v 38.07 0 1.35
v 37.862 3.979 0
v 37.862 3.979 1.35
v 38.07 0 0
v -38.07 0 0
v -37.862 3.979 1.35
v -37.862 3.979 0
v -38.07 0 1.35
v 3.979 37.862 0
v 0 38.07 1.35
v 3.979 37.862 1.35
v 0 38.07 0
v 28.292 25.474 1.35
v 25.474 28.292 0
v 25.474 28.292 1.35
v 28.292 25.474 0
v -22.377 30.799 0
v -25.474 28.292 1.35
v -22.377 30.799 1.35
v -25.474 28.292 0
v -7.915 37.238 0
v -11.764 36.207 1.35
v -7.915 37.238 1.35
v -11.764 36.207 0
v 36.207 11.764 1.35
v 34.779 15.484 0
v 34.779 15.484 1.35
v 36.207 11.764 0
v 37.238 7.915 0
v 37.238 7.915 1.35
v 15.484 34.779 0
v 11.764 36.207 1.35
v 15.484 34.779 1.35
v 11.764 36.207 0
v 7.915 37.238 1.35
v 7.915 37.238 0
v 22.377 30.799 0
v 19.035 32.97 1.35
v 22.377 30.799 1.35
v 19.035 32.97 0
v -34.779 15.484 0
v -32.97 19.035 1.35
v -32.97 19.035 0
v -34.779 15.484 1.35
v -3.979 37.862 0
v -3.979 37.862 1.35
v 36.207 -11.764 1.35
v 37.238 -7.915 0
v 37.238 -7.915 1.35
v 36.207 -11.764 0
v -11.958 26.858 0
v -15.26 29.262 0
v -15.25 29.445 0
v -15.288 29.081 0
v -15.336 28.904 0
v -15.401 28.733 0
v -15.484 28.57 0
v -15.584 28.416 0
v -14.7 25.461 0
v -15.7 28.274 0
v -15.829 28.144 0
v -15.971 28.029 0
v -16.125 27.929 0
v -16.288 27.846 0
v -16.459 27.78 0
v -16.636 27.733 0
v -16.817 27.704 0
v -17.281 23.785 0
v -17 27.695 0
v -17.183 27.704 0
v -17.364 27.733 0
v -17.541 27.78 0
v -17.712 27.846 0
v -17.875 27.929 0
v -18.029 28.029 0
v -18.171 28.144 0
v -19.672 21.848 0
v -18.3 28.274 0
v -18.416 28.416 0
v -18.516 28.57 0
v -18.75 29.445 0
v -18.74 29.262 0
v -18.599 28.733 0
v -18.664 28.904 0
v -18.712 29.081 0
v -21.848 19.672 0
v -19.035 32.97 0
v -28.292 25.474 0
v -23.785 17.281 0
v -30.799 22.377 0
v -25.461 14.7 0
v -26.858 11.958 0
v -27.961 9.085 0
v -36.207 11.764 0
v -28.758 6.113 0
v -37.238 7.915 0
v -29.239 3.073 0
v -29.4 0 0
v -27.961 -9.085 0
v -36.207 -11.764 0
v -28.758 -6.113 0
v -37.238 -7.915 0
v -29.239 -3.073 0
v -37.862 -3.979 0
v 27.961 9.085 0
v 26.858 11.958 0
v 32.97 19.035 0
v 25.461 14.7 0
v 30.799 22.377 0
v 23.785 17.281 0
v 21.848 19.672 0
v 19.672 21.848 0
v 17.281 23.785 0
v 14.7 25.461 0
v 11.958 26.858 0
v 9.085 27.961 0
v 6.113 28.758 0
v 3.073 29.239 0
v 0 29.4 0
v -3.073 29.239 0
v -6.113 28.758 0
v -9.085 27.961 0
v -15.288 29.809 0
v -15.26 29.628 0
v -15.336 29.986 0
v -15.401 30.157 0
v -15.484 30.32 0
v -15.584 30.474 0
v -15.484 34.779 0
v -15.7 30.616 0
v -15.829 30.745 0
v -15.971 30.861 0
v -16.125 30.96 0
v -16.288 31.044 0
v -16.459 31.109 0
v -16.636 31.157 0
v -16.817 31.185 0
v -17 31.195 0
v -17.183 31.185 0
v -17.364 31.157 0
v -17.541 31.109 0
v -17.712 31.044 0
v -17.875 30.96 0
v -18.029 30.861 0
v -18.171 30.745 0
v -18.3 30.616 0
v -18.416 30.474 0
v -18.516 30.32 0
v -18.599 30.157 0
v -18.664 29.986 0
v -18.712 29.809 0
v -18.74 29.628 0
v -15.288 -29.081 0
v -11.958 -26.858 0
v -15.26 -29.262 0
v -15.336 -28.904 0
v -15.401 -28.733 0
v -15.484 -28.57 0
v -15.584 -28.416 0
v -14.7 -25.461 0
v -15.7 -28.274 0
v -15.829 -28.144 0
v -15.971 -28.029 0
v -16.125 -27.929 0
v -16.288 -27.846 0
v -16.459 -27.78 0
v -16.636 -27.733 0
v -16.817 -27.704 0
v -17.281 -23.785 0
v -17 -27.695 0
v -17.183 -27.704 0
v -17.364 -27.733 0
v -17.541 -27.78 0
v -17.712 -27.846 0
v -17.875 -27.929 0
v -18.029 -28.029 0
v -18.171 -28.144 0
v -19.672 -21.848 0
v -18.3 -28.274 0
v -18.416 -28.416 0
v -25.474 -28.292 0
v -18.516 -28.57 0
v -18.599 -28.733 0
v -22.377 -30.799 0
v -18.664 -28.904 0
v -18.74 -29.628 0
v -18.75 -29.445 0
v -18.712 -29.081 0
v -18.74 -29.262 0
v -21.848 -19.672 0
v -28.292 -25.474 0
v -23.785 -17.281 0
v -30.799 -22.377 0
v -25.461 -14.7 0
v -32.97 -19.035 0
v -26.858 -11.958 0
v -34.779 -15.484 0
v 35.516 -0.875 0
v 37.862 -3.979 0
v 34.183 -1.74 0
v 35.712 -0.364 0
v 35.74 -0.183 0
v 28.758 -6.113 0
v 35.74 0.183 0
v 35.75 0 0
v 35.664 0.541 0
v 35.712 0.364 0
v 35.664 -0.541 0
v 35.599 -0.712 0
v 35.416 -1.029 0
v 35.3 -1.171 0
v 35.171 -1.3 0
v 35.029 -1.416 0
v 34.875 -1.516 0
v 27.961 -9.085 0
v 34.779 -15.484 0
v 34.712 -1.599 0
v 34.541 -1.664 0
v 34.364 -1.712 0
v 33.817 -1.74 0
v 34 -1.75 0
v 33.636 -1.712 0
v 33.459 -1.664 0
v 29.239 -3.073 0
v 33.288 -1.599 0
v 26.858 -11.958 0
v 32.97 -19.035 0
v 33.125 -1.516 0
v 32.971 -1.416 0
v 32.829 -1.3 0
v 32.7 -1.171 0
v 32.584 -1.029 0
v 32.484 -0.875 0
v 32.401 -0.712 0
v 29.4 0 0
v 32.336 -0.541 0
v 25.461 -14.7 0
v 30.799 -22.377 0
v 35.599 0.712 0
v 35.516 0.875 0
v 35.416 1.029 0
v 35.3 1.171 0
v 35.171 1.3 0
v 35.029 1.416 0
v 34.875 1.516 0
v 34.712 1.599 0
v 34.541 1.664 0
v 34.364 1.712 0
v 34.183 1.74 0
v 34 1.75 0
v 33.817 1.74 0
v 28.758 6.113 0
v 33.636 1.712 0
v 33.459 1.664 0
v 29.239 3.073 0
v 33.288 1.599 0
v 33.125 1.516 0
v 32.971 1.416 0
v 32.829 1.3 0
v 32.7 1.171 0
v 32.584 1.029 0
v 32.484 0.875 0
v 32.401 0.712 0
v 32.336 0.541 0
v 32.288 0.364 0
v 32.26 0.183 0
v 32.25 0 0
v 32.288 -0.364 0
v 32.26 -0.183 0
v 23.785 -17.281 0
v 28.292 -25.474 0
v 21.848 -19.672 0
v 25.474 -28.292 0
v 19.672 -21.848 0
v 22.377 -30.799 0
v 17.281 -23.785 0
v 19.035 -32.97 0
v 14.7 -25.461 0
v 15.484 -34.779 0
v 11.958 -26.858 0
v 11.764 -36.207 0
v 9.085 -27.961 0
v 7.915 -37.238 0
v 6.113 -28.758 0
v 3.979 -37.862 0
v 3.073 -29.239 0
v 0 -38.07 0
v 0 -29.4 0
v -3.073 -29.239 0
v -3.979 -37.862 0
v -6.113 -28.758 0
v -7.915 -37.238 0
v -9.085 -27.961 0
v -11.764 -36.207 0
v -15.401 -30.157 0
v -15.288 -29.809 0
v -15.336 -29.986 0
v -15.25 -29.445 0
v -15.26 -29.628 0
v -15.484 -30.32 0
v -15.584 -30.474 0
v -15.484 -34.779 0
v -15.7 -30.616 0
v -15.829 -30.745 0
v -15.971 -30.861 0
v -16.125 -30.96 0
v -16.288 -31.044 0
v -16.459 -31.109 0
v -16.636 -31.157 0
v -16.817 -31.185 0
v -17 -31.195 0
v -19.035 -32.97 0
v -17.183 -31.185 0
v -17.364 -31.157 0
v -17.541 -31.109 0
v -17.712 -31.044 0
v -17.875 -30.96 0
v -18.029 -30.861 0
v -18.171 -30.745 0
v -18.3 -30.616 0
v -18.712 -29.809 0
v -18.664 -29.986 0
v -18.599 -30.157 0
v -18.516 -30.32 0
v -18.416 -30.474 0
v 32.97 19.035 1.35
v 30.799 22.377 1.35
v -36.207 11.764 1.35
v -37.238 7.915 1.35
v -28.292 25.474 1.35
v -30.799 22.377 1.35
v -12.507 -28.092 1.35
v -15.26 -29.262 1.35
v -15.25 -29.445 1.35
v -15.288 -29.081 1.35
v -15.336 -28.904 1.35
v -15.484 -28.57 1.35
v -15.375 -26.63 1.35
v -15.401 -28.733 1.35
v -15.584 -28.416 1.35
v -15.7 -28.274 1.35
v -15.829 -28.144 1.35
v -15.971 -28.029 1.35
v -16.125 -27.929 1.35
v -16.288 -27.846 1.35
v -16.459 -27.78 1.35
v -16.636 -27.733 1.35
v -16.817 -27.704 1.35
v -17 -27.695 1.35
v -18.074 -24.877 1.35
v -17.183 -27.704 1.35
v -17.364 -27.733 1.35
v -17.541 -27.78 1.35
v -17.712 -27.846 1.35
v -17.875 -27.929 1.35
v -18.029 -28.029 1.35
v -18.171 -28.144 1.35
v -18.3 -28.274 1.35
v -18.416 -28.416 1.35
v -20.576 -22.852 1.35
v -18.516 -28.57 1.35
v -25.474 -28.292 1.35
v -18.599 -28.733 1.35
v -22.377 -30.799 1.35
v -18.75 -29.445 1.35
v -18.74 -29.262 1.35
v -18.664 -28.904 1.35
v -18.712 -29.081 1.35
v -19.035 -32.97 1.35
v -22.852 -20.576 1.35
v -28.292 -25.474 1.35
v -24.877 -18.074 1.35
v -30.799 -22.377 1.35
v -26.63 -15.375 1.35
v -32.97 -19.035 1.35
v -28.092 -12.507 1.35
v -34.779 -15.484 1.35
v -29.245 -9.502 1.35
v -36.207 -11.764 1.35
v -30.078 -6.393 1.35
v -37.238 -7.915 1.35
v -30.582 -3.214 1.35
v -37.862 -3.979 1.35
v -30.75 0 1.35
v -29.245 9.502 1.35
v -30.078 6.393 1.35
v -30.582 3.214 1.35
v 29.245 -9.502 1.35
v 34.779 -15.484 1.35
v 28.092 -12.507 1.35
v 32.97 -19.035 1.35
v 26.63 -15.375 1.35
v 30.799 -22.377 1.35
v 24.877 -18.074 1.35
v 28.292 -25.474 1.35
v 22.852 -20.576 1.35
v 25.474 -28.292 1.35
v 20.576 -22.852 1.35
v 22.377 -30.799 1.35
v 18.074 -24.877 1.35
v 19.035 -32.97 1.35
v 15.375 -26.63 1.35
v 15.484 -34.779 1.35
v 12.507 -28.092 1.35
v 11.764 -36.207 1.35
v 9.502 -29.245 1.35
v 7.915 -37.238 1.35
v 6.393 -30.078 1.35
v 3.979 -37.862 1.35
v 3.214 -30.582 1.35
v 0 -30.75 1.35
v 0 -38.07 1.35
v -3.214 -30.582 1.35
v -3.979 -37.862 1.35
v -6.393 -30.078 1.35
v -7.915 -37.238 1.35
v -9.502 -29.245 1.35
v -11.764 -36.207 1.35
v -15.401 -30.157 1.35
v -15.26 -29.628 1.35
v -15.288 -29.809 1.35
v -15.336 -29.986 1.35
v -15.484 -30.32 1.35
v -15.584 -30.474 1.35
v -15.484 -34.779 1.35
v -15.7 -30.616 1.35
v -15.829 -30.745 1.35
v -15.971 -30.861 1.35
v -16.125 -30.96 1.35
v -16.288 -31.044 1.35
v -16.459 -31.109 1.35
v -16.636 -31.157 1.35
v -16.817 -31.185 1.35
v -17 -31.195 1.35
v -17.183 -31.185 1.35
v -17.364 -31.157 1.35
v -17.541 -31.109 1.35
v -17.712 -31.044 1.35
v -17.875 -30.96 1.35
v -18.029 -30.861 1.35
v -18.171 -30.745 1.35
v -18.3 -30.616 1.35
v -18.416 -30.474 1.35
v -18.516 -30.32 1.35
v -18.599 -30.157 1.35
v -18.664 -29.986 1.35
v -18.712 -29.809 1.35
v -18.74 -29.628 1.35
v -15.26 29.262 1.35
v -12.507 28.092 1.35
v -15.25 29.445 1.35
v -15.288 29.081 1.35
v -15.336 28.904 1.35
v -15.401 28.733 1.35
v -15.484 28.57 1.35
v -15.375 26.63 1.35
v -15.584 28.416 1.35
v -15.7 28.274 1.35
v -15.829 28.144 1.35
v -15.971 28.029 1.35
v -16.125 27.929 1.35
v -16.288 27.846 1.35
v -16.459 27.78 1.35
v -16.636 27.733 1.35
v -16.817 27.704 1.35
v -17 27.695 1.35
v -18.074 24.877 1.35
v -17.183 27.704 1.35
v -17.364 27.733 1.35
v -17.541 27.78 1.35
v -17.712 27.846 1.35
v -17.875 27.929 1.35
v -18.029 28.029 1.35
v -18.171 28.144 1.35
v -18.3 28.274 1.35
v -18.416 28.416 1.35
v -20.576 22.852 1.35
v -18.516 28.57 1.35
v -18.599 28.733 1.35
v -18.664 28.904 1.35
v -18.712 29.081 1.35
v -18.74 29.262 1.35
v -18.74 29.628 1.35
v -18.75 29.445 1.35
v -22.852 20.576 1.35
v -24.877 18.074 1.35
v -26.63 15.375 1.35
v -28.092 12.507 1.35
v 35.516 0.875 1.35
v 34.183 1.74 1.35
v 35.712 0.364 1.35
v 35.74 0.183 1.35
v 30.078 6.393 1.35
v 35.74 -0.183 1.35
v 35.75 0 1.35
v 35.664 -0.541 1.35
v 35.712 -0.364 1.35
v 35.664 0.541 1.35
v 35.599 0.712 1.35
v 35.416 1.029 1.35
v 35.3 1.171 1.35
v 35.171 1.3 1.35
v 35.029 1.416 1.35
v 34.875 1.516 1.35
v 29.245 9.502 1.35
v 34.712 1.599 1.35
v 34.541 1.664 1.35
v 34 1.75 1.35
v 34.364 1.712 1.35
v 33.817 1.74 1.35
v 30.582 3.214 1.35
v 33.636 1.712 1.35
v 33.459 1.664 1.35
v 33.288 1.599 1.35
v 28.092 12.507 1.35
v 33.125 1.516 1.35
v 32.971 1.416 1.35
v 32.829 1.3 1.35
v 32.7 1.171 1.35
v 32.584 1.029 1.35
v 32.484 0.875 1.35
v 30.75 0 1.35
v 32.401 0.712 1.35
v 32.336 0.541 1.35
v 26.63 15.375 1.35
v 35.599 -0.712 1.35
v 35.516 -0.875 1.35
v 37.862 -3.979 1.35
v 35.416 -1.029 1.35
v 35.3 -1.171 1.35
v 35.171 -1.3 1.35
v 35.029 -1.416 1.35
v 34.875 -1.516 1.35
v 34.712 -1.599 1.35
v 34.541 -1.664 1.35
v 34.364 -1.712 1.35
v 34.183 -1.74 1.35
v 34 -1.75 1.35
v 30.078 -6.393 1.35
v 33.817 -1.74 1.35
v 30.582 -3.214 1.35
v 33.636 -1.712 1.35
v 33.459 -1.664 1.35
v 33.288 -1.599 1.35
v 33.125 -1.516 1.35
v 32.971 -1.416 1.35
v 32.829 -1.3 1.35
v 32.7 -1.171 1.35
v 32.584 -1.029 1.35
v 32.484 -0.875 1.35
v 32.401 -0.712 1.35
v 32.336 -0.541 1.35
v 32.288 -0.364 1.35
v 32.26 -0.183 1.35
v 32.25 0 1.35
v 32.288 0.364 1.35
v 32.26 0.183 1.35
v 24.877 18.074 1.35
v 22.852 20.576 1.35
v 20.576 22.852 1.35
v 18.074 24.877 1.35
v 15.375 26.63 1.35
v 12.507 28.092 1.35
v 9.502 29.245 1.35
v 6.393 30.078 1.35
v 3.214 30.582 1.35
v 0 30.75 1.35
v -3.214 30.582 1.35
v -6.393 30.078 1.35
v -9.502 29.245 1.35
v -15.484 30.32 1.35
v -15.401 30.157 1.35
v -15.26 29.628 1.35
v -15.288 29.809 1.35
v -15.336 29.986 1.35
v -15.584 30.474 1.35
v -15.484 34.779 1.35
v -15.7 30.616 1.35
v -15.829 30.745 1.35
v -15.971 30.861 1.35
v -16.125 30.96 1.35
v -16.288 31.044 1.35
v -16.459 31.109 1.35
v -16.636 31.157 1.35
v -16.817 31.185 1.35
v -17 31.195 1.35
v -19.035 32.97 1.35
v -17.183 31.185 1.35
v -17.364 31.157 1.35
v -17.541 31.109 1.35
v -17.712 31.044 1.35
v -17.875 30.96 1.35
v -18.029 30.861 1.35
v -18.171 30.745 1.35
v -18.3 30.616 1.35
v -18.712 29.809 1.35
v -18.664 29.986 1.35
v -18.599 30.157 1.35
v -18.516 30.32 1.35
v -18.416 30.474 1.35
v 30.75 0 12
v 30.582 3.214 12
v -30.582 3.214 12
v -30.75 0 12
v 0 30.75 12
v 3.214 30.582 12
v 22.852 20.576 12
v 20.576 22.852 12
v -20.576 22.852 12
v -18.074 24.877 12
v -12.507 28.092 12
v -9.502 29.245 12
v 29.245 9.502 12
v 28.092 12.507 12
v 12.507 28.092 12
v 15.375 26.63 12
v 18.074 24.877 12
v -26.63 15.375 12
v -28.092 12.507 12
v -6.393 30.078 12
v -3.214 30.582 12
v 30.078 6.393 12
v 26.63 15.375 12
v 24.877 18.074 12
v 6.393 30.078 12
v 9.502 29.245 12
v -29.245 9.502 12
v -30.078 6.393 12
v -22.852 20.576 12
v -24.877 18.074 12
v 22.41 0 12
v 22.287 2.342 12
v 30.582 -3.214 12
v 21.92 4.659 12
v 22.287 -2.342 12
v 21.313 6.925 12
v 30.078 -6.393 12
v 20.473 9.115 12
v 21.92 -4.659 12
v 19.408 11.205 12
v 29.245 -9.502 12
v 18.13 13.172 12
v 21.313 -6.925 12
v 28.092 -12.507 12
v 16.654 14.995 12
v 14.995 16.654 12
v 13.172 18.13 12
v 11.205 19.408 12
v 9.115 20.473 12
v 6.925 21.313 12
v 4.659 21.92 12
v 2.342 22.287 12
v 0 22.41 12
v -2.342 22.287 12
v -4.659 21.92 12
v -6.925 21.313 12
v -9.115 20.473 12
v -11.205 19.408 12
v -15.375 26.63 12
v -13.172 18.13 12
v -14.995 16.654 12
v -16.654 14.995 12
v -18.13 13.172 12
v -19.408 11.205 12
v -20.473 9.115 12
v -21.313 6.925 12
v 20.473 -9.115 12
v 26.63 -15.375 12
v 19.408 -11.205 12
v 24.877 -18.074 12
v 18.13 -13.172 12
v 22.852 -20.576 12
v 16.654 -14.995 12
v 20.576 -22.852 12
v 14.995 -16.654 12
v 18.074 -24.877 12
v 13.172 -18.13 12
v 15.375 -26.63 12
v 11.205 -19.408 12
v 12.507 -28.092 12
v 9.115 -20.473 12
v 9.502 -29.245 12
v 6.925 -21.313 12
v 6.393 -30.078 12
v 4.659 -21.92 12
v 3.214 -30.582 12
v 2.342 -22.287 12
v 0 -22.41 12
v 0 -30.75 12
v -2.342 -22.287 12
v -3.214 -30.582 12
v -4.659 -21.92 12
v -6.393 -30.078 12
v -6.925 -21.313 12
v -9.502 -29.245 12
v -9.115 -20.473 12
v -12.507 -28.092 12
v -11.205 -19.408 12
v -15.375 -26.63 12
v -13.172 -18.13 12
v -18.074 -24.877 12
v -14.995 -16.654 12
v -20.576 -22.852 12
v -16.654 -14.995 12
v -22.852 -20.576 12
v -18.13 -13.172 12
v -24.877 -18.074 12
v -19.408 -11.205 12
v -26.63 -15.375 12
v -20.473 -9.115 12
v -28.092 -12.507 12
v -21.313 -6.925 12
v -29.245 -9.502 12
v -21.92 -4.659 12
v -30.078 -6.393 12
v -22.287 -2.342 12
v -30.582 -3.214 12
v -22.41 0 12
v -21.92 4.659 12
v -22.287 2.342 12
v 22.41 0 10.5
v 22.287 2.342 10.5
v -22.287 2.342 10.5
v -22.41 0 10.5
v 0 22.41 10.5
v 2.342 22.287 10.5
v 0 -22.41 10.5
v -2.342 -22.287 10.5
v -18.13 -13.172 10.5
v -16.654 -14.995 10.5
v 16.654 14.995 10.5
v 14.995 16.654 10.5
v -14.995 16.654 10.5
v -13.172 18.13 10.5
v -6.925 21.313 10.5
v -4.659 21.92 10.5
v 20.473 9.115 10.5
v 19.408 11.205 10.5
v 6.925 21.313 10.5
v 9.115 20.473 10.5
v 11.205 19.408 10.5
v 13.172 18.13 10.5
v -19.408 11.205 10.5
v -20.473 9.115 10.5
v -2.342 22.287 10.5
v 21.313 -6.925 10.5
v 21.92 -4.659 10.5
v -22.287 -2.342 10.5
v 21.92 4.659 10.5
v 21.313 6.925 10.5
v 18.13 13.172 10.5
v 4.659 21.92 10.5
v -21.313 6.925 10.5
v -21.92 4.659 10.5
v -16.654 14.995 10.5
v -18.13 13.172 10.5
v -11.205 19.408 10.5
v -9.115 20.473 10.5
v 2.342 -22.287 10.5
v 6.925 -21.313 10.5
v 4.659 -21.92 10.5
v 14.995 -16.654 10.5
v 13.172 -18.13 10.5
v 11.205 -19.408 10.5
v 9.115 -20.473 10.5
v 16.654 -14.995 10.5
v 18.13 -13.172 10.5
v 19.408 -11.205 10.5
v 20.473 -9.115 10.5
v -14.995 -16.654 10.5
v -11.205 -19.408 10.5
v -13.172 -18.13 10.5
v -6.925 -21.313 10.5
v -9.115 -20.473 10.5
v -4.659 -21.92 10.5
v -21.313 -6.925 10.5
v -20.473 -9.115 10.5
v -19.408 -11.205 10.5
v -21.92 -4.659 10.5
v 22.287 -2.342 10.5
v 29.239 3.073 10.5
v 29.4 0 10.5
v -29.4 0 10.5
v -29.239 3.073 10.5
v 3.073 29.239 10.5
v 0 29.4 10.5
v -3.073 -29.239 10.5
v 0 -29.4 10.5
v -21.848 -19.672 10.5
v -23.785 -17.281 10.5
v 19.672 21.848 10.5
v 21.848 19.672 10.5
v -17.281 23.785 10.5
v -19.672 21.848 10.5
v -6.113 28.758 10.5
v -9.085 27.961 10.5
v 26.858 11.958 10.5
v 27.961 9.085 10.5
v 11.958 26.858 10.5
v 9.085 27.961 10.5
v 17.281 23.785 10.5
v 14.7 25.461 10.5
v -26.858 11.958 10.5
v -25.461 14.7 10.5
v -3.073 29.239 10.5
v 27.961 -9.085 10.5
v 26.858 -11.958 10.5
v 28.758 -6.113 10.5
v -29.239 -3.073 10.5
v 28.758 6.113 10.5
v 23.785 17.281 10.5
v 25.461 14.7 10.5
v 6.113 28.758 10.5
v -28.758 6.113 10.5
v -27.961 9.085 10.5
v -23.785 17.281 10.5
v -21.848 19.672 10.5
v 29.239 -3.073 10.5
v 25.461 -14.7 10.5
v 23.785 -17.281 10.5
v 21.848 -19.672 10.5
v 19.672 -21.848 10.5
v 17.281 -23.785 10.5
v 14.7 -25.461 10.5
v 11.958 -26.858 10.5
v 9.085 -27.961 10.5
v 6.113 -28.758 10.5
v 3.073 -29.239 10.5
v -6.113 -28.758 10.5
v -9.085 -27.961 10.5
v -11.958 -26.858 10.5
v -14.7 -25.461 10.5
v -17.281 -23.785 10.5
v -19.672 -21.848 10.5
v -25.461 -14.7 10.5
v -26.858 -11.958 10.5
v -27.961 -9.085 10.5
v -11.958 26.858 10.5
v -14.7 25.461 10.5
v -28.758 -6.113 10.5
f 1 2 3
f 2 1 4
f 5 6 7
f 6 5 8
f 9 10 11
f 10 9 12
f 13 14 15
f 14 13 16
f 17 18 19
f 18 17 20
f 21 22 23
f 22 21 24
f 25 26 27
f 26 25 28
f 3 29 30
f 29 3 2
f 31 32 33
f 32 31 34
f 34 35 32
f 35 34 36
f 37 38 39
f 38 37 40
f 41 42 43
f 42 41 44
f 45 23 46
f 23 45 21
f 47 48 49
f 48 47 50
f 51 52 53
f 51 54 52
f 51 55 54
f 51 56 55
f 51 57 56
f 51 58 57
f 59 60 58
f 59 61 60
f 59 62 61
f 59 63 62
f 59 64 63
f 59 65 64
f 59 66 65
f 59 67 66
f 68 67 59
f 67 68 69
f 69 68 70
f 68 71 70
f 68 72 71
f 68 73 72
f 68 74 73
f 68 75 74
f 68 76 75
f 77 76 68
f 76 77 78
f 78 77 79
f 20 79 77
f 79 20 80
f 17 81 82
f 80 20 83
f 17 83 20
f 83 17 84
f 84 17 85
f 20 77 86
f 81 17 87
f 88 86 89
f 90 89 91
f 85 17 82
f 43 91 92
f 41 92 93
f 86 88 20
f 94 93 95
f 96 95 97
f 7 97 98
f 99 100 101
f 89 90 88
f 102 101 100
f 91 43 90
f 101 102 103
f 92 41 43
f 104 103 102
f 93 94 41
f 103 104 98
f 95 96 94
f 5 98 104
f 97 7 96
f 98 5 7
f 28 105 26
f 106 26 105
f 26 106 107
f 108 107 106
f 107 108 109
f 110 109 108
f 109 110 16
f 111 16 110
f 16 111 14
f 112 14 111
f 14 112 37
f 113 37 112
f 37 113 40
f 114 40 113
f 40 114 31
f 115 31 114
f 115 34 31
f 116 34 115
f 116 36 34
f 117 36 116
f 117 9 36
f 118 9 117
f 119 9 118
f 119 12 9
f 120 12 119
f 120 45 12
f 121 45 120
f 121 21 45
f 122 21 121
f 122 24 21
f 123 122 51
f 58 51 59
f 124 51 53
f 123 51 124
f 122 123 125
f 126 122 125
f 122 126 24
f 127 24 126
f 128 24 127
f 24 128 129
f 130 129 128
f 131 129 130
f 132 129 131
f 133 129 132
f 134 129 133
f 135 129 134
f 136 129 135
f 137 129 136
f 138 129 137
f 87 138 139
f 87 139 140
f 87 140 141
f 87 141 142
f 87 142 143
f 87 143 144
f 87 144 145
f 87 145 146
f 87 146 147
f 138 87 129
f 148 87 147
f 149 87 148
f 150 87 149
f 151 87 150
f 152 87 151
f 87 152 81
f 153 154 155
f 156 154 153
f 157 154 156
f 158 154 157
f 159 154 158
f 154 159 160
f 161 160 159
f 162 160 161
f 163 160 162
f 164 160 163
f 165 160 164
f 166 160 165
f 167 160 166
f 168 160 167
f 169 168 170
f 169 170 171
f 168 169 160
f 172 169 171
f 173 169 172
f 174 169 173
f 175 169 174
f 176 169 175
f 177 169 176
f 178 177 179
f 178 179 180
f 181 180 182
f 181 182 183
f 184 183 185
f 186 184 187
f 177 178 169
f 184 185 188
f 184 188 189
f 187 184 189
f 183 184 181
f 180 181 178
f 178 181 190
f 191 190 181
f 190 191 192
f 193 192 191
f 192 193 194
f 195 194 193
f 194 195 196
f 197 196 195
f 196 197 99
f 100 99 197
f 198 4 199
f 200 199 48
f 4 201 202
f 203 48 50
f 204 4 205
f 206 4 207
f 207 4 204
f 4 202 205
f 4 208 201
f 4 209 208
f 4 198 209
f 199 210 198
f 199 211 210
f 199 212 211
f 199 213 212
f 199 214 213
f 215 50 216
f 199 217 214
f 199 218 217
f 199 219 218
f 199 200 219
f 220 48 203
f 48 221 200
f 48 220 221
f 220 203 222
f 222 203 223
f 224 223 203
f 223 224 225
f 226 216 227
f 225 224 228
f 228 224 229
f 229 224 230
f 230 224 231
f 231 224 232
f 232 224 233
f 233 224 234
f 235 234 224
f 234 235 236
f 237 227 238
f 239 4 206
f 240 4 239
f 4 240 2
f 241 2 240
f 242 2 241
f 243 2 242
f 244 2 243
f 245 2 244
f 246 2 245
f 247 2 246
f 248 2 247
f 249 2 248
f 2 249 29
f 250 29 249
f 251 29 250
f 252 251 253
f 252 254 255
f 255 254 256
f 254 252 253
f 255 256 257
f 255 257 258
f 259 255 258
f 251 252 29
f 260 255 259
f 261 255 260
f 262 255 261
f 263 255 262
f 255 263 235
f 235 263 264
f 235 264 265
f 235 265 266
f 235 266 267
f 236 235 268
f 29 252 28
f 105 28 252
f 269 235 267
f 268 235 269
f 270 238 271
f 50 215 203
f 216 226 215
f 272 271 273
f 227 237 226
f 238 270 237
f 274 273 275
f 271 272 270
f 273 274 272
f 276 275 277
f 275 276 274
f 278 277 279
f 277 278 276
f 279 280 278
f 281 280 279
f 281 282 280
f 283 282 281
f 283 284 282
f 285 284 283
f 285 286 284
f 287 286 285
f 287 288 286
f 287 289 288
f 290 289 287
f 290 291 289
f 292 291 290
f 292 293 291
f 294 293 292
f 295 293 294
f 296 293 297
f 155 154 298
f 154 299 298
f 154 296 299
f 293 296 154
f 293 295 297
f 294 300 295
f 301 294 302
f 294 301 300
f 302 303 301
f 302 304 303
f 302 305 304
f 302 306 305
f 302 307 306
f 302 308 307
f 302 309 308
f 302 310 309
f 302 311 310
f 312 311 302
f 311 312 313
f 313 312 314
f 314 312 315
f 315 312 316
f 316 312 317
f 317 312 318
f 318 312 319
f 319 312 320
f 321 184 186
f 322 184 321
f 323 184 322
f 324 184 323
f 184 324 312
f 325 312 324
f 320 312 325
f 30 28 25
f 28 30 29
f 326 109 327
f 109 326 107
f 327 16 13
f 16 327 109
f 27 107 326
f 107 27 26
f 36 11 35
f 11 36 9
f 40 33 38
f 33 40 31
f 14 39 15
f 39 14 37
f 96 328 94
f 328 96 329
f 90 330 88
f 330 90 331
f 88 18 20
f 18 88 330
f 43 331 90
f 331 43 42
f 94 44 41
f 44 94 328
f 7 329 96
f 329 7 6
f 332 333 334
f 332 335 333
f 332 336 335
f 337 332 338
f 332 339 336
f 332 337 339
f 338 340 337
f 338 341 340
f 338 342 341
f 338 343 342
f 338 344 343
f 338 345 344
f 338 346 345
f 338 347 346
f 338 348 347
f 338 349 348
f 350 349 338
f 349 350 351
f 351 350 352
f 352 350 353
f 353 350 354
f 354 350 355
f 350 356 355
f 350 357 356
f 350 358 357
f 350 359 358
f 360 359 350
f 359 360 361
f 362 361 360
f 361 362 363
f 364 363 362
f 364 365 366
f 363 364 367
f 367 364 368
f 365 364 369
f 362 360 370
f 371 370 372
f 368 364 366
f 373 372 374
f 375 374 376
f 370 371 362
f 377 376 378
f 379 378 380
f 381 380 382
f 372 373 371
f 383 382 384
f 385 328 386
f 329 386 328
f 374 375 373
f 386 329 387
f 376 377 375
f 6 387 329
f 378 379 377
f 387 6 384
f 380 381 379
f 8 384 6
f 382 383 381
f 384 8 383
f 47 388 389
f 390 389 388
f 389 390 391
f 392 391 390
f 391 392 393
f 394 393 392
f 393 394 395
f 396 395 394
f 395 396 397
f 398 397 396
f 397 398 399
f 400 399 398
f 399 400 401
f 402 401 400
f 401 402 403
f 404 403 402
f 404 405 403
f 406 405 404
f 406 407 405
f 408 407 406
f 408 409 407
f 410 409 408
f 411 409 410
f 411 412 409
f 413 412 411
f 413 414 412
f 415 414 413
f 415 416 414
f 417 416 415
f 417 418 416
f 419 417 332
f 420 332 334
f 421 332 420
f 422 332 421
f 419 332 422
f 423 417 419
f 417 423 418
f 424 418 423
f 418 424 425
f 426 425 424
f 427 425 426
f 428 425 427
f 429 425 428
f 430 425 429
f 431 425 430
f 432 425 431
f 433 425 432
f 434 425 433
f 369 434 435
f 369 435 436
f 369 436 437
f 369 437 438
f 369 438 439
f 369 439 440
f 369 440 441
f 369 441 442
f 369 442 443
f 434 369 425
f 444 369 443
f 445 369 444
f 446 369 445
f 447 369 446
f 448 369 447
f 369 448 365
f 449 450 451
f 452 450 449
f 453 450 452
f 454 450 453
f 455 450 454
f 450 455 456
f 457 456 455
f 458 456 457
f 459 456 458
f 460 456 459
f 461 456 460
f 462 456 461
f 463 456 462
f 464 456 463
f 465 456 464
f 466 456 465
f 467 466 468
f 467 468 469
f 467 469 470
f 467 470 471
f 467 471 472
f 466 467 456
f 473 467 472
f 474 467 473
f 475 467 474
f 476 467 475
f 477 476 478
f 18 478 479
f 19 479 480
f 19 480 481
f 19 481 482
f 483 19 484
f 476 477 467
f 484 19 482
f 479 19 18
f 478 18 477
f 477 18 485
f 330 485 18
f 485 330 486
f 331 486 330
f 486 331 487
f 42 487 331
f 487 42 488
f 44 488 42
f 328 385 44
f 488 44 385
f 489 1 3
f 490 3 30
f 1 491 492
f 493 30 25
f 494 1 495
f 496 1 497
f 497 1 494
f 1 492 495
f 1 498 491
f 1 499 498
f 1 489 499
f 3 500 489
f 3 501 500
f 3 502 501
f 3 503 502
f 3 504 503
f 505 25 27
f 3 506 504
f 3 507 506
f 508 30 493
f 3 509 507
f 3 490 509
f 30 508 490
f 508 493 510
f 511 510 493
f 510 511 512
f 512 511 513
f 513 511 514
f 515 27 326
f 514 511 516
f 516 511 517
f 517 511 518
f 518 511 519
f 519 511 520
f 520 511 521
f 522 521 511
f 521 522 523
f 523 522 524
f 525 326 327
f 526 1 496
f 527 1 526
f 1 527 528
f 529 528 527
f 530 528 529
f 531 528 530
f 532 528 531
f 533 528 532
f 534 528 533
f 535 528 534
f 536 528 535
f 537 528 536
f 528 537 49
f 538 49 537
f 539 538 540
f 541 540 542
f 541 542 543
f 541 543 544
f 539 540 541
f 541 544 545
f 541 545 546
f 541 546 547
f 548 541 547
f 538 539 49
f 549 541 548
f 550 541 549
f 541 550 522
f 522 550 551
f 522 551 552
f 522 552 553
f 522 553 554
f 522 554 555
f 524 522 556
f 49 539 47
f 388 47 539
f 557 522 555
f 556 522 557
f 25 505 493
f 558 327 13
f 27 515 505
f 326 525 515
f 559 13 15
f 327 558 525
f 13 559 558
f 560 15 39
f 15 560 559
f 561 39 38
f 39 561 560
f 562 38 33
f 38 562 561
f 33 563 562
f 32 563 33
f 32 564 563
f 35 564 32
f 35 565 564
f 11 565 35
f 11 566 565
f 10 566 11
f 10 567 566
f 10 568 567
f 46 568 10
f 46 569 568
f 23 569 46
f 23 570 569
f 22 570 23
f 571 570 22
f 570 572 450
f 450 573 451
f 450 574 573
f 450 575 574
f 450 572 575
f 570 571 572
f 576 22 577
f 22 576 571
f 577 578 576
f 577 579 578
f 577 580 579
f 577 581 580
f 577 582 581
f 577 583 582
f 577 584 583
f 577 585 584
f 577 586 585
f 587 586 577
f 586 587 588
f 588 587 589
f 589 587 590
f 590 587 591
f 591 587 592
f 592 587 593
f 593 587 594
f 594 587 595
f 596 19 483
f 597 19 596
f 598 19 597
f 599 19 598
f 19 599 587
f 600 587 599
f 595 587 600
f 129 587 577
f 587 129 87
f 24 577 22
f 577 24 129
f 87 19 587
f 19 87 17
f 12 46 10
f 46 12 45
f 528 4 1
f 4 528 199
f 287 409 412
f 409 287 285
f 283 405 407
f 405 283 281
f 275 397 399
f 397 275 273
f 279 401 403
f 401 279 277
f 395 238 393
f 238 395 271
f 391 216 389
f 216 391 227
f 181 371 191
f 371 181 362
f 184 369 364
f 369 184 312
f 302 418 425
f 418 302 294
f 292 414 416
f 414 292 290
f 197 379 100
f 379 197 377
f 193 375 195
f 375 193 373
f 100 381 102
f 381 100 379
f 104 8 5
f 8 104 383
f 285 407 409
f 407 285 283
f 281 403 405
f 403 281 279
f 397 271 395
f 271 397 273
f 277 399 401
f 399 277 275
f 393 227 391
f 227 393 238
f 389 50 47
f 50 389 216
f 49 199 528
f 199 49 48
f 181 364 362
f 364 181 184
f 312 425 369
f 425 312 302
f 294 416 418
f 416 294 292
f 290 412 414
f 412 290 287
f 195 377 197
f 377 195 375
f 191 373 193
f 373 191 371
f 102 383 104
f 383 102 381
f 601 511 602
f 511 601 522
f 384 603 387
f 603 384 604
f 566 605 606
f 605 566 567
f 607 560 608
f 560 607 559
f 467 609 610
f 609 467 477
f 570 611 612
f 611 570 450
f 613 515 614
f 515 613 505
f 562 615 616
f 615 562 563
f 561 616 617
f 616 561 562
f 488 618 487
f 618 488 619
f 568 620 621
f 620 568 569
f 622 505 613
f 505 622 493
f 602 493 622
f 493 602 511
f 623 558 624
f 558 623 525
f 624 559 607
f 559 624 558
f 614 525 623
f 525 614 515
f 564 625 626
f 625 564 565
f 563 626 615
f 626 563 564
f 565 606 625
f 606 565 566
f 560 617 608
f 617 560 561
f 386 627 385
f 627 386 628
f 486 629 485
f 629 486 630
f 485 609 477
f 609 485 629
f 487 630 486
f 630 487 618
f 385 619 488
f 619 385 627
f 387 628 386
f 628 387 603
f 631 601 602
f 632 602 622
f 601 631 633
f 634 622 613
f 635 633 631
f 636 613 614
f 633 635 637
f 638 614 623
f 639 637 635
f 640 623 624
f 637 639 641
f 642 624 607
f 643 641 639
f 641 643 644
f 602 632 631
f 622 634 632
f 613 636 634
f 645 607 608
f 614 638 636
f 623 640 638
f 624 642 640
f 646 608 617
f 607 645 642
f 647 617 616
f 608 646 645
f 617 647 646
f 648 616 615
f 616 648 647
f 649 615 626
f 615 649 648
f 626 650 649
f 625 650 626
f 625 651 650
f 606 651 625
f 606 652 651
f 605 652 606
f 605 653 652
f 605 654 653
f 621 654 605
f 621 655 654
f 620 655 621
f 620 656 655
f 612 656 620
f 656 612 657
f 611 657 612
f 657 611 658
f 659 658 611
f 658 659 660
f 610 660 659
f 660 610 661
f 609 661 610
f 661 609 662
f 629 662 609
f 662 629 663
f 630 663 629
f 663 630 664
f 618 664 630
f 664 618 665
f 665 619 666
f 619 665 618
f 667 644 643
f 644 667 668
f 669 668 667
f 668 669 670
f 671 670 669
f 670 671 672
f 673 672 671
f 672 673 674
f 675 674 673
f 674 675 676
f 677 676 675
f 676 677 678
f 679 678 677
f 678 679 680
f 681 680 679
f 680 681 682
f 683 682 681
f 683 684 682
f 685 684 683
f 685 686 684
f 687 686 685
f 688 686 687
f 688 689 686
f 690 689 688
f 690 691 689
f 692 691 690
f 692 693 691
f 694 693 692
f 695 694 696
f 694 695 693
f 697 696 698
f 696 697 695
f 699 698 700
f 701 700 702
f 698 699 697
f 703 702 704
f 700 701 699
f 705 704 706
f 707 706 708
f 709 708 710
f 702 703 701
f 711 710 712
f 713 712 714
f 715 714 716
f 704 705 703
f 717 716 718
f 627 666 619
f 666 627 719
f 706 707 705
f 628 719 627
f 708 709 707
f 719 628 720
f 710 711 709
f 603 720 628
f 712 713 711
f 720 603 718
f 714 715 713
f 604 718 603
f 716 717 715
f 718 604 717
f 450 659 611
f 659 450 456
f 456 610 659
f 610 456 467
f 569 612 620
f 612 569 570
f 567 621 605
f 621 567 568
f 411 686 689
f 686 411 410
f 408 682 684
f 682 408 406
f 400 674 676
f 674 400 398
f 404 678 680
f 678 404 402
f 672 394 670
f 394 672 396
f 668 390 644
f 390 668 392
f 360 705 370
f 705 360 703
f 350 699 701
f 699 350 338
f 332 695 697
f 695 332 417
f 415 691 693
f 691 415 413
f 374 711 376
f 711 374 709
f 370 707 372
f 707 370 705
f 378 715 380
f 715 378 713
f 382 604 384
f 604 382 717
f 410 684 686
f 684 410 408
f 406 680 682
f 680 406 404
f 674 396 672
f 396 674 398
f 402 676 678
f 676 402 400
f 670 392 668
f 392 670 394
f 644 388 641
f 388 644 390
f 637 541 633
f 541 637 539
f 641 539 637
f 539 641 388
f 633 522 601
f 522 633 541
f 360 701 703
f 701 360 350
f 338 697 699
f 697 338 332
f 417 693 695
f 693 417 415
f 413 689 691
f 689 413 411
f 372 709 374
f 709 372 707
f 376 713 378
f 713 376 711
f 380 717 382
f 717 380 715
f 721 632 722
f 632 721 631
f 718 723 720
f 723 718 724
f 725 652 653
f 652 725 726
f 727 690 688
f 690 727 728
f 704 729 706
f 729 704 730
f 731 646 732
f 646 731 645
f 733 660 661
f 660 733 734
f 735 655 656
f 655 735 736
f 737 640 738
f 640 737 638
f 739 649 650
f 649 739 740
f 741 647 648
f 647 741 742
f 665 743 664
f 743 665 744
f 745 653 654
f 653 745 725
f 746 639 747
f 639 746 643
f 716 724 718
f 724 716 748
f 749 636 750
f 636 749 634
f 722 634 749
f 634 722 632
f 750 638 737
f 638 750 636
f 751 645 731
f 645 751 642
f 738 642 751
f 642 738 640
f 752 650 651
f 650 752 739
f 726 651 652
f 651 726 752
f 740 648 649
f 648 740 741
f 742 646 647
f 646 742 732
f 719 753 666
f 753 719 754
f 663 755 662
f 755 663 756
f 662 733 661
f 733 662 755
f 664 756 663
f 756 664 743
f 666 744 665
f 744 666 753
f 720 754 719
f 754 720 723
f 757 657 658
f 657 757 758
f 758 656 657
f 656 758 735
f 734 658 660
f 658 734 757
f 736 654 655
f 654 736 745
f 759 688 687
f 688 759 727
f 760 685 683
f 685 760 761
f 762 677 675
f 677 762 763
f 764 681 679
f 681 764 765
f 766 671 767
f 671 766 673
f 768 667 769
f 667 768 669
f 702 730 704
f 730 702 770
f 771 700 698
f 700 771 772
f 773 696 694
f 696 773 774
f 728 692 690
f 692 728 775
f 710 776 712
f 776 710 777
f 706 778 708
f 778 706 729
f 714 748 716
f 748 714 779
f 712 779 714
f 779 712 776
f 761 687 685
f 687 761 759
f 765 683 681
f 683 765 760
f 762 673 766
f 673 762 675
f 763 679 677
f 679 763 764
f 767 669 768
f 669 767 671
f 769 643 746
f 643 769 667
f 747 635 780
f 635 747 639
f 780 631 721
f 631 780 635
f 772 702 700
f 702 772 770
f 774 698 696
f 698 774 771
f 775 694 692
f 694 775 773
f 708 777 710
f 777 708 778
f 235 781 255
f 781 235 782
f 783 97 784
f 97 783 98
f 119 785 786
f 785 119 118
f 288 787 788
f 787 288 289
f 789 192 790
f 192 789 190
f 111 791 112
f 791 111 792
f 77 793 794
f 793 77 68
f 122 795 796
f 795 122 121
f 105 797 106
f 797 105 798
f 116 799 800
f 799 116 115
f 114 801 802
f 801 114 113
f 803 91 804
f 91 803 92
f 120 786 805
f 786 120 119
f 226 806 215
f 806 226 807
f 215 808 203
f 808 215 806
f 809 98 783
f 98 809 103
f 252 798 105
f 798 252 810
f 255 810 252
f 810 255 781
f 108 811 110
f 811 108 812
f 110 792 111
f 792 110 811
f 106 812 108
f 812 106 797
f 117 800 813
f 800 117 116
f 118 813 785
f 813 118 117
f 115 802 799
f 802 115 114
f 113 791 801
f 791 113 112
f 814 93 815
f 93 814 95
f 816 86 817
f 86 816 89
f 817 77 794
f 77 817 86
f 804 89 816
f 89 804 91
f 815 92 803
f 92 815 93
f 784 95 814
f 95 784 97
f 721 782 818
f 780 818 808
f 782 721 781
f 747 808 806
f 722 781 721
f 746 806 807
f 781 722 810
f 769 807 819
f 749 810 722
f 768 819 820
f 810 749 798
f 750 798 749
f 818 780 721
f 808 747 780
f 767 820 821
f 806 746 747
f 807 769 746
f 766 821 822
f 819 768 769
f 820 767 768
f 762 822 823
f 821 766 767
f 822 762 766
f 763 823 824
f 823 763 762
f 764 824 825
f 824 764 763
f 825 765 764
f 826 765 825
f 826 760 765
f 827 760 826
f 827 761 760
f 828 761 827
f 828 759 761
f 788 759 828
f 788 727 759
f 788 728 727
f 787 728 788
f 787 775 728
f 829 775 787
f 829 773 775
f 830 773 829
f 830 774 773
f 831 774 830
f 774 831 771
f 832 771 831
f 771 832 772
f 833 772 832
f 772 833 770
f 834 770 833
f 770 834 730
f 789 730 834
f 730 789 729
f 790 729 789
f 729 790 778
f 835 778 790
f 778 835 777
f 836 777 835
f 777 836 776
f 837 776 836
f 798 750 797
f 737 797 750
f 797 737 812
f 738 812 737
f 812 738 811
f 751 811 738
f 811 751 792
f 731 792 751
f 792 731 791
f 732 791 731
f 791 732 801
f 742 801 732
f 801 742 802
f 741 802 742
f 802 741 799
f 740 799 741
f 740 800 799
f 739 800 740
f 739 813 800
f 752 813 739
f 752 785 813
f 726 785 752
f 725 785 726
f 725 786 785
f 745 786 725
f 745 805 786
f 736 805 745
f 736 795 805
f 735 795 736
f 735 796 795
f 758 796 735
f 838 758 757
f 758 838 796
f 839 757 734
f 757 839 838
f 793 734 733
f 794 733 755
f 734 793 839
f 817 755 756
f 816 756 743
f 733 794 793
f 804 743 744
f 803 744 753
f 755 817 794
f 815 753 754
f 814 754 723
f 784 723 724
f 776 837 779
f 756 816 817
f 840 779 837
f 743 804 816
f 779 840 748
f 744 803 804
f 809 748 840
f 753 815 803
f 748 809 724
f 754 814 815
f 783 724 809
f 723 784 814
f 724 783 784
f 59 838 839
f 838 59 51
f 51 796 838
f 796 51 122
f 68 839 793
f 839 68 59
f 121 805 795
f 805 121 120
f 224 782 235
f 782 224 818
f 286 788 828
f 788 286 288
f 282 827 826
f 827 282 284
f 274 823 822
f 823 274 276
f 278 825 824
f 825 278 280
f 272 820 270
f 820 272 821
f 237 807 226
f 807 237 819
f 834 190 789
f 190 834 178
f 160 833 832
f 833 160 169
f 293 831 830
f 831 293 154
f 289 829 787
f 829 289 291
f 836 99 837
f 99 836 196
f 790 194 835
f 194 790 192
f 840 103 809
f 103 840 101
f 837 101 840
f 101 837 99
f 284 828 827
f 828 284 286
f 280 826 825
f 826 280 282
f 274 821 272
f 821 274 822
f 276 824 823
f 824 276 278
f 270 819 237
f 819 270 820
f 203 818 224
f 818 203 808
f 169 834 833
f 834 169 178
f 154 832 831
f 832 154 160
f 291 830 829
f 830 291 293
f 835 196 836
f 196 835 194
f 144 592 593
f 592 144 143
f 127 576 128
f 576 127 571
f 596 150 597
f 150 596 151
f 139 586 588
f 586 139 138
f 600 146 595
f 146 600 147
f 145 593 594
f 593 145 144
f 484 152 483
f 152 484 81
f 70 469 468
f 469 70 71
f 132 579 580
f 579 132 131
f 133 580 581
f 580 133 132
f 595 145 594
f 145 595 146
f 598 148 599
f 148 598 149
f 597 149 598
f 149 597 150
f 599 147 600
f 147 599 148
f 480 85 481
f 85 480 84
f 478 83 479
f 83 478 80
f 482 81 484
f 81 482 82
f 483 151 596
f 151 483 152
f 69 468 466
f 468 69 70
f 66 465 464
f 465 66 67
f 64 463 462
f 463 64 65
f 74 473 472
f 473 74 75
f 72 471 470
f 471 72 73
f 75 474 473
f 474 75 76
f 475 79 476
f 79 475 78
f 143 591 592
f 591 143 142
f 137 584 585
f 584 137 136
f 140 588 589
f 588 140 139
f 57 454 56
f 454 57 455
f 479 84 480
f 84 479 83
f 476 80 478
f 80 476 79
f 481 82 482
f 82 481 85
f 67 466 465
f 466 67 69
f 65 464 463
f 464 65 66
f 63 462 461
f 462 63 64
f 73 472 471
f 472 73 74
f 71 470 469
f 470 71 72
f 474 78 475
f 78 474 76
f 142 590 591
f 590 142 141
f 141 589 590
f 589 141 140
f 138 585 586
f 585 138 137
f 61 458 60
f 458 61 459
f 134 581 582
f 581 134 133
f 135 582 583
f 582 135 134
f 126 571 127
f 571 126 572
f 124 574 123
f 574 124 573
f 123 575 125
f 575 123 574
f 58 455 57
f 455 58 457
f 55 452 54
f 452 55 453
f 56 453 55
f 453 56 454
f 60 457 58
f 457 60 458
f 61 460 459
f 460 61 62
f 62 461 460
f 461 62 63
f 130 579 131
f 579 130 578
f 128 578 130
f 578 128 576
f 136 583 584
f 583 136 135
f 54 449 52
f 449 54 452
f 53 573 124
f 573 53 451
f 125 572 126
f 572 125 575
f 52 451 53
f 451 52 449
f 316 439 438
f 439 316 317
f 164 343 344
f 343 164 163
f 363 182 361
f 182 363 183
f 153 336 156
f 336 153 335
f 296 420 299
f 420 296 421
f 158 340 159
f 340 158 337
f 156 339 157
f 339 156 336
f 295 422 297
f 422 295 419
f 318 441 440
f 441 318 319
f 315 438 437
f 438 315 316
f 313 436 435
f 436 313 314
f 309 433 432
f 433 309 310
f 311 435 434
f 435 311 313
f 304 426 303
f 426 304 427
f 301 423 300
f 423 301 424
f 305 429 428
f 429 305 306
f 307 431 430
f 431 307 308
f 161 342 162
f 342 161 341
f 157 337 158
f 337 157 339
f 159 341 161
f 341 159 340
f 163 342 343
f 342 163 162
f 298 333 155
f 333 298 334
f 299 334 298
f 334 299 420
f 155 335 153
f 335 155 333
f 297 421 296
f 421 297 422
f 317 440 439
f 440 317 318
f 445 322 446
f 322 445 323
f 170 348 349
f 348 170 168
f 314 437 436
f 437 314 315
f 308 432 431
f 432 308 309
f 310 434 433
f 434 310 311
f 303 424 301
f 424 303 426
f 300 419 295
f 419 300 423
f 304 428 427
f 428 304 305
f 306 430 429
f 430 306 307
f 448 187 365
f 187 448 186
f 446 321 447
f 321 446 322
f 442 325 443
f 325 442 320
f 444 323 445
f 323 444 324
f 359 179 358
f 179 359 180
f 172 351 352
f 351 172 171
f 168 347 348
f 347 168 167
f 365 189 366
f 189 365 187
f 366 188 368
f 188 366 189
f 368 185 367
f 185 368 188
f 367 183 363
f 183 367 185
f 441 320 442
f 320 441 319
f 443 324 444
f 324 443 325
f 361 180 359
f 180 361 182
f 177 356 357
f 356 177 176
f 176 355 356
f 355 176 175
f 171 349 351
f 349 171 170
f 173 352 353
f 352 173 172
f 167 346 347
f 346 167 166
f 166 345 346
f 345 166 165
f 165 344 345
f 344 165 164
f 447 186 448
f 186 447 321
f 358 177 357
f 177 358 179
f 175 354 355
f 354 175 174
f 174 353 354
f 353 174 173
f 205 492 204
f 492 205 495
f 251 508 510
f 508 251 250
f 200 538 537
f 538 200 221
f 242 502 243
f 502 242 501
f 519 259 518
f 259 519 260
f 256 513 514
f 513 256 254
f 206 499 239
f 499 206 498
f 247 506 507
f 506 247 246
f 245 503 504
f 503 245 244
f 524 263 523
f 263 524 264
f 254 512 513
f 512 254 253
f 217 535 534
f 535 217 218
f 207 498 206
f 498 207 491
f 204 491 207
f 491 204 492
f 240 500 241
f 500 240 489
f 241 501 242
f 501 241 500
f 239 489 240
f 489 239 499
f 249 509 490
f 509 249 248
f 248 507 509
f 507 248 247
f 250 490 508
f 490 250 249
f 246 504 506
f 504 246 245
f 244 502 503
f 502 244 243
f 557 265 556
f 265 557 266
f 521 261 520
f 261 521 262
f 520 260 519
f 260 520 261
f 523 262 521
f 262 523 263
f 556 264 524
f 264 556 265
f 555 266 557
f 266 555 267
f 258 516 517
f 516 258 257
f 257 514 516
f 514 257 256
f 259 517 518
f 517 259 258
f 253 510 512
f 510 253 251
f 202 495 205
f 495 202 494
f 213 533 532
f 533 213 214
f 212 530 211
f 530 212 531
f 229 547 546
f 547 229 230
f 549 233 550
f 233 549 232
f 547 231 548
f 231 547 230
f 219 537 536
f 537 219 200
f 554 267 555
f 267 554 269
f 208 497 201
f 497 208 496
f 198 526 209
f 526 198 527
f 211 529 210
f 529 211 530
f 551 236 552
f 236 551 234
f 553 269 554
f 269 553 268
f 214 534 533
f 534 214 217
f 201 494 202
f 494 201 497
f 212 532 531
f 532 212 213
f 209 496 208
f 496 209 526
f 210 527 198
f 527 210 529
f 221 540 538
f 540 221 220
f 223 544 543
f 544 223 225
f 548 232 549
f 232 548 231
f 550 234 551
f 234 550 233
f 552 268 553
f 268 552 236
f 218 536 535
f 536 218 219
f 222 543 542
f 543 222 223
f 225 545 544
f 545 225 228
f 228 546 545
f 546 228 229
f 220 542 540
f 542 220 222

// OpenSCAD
$fn=60;
module main() {
cylinder (r=76.14/2, h=1.35);
cylinder (r=61.5/2, h=12);

}

difference ()
{
main();
cylinder (r=44.82/2, h=12);
cylinder (r=(61.5/2)-1.35, h=10.5);

//trou
    
rotate ([0,0,120])translate([(68/2),0,0]) cylinder (r=3.5/2, h=1.5);
rotate ([0,0,240])translate([(68/2),0,0]) cylinder (r=3.5/2, h=1.5);
rotate ([0,0,360])translate([(68/2),0,0]) cylinder (r=3.5/2, h=1.5);

/*translate([-(68/2),0,0])cylinder (r=3.5/2, h=1.5);
*/
}
